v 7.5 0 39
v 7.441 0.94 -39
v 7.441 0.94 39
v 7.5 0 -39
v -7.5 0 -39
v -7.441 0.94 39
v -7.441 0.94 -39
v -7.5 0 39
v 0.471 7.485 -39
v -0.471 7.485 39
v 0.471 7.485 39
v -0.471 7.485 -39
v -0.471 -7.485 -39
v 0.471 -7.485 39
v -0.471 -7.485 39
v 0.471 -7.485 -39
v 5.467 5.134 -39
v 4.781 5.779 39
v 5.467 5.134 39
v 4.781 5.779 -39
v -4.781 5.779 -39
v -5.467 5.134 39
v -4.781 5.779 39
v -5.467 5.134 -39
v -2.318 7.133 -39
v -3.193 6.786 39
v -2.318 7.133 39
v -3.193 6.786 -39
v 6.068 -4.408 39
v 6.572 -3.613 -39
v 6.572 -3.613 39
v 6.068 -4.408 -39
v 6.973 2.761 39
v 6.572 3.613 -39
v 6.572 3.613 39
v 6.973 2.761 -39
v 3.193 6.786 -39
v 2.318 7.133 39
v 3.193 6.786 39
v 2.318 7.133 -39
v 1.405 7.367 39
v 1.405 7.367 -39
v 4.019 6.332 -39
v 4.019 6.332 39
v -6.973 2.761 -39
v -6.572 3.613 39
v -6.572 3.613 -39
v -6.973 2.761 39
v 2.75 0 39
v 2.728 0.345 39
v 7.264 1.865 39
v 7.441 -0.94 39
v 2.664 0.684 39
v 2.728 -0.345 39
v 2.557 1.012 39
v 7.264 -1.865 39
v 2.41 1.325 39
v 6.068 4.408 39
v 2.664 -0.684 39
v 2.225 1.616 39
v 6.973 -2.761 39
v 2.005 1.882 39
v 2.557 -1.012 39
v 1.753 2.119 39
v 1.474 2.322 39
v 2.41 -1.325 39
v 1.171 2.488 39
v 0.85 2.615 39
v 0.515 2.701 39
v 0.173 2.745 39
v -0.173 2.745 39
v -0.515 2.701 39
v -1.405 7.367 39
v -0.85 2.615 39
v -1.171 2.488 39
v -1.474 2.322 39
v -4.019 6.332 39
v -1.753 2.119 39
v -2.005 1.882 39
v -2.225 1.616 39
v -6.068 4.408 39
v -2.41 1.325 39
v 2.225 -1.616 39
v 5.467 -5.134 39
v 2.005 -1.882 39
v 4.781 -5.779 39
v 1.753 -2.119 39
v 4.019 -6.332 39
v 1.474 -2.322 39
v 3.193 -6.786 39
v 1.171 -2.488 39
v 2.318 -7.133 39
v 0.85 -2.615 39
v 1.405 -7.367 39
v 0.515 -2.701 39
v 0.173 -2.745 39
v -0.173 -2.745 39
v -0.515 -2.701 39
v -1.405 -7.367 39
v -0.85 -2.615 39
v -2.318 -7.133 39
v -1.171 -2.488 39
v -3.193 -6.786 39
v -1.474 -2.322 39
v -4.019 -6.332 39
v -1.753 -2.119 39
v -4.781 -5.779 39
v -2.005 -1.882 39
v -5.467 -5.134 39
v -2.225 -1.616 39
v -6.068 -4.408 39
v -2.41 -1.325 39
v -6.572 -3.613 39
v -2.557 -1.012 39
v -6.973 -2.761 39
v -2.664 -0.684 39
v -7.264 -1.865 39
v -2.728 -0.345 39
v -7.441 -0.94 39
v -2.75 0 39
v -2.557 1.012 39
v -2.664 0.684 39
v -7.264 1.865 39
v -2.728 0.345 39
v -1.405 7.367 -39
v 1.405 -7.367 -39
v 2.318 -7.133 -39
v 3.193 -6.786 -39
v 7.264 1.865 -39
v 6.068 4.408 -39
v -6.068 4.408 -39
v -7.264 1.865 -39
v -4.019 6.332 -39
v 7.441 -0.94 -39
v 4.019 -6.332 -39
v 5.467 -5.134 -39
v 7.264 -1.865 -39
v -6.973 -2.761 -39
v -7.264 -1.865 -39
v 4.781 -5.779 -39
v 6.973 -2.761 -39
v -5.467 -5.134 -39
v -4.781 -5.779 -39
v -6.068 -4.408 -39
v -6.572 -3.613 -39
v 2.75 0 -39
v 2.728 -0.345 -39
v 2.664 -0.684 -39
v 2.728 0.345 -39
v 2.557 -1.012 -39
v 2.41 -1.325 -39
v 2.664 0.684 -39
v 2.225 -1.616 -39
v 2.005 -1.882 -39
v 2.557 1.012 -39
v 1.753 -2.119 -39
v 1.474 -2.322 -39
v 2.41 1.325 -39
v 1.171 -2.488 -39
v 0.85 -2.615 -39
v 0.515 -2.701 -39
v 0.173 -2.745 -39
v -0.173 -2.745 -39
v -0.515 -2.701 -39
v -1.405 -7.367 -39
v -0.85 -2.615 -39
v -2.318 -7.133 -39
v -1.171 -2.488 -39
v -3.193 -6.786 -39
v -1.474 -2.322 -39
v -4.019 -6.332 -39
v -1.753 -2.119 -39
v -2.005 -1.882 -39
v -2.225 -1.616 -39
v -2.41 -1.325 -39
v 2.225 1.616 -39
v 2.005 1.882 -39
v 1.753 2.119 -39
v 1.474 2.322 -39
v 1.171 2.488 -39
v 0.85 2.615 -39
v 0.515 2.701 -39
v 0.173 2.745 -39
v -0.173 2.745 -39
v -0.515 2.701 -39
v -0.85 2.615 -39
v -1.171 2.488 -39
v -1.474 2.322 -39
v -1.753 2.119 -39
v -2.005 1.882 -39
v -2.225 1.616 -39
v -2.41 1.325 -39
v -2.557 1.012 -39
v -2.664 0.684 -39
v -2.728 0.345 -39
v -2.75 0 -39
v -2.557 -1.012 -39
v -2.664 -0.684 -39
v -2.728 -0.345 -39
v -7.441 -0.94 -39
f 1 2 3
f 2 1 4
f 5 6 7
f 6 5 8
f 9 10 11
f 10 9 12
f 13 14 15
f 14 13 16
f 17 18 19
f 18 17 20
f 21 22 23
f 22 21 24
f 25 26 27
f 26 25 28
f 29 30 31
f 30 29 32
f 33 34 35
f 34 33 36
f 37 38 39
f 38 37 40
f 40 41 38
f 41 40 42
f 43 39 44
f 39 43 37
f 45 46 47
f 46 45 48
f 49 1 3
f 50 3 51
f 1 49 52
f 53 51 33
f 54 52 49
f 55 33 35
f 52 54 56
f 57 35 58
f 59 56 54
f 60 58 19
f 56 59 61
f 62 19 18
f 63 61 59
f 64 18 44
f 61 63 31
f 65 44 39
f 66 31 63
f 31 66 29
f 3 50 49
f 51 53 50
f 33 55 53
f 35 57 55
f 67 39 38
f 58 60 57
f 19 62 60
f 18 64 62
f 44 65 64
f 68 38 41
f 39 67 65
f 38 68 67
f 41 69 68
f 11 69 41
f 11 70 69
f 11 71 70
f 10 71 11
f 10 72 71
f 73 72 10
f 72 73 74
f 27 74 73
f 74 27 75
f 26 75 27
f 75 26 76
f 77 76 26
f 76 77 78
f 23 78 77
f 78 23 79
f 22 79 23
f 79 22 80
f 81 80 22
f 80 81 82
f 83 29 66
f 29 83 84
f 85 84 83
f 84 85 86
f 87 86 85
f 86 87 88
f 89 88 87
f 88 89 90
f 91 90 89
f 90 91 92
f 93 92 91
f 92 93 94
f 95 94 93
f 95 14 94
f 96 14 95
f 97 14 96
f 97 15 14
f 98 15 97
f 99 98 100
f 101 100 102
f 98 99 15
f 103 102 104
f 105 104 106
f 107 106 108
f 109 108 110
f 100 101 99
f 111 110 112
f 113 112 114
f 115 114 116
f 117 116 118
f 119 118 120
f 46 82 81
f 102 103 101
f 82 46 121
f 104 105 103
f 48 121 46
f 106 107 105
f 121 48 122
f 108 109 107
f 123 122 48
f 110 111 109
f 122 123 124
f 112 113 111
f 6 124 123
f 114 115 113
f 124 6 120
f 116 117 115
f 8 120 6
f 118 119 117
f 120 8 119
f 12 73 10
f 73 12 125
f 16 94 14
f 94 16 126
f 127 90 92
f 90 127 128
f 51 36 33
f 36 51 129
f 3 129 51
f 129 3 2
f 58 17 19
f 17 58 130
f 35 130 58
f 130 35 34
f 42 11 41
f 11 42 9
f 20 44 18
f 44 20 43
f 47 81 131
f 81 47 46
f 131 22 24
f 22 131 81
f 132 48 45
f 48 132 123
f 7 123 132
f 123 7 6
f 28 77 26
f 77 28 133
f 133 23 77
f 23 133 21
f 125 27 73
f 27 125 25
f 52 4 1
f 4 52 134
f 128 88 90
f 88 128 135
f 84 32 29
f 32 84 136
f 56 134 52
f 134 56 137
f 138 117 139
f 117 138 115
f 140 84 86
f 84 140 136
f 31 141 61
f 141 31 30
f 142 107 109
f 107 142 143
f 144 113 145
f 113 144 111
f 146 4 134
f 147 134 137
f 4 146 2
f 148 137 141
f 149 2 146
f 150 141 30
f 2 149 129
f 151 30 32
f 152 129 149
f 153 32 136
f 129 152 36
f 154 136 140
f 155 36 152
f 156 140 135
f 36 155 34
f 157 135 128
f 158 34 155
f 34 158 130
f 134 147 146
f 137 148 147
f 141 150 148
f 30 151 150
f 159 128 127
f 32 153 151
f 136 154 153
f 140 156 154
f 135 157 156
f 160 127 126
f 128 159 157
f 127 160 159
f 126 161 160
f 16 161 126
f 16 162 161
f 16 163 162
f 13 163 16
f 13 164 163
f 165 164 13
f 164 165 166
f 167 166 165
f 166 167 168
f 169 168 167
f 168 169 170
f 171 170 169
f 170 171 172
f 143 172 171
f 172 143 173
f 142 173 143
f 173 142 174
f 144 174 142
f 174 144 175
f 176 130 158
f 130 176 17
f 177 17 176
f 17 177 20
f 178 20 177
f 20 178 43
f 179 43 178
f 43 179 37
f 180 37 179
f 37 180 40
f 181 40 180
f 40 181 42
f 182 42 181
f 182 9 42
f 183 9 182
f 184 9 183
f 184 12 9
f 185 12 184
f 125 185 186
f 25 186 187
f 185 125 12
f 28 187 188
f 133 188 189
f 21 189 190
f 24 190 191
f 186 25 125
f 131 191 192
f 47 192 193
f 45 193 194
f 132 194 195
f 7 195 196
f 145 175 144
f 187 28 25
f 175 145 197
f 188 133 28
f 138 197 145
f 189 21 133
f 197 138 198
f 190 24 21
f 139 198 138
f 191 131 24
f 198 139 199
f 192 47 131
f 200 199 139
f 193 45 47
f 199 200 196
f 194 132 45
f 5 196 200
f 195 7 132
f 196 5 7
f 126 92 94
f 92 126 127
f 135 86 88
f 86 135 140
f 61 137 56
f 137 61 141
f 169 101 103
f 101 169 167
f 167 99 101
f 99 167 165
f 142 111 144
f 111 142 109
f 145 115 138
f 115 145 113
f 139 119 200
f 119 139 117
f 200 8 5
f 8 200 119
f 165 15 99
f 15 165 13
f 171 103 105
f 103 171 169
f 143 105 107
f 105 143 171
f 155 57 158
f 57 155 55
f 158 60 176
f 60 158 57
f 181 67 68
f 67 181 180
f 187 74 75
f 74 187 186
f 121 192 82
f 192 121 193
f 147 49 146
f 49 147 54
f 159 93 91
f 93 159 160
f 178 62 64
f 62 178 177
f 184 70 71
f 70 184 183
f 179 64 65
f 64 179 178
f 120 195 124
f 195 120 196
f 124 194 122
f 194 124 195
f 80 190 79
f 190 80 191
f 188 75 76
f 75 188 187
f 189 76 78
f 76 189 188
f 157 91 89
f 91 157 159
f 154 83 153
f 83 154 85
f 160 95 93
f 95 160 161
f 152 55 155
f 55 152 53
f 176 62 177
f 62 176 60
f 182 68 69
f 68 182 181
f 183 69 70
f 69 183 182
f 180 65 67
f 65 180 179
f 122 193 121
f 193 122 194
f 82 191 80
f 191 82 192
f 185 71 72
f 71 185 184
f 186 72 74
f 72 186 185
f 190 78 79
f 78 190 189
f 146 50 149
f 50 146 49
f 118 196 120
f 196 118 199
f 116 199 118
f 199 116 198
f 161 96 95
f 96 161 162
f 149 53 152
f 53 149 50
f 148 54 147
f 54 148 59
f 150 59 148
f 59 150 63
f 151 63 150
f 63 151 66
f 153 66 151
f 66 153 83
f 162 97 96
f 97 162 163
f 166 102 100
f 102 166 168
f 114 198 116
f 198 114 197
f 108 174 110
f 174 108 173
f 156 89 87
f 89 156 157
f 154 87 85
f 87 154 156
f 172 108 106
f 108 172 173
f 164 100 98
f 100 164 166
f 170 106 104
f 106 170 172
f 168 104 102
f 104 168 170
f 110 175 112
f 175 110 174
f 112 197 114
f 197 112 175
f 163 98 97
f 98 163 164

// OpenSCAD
$fn = 50;


difference() {
	union() {
		translate(v = [0, 0, -39.0000000000]) {
			cylinder(h = 78, r = 7.5000000000);
		}
	}
	union() {
		translate(v = [0, 0, -100.0000000000]) {
			cylinder(h = 200, r = 2.7500000000);
		}
	}
}
